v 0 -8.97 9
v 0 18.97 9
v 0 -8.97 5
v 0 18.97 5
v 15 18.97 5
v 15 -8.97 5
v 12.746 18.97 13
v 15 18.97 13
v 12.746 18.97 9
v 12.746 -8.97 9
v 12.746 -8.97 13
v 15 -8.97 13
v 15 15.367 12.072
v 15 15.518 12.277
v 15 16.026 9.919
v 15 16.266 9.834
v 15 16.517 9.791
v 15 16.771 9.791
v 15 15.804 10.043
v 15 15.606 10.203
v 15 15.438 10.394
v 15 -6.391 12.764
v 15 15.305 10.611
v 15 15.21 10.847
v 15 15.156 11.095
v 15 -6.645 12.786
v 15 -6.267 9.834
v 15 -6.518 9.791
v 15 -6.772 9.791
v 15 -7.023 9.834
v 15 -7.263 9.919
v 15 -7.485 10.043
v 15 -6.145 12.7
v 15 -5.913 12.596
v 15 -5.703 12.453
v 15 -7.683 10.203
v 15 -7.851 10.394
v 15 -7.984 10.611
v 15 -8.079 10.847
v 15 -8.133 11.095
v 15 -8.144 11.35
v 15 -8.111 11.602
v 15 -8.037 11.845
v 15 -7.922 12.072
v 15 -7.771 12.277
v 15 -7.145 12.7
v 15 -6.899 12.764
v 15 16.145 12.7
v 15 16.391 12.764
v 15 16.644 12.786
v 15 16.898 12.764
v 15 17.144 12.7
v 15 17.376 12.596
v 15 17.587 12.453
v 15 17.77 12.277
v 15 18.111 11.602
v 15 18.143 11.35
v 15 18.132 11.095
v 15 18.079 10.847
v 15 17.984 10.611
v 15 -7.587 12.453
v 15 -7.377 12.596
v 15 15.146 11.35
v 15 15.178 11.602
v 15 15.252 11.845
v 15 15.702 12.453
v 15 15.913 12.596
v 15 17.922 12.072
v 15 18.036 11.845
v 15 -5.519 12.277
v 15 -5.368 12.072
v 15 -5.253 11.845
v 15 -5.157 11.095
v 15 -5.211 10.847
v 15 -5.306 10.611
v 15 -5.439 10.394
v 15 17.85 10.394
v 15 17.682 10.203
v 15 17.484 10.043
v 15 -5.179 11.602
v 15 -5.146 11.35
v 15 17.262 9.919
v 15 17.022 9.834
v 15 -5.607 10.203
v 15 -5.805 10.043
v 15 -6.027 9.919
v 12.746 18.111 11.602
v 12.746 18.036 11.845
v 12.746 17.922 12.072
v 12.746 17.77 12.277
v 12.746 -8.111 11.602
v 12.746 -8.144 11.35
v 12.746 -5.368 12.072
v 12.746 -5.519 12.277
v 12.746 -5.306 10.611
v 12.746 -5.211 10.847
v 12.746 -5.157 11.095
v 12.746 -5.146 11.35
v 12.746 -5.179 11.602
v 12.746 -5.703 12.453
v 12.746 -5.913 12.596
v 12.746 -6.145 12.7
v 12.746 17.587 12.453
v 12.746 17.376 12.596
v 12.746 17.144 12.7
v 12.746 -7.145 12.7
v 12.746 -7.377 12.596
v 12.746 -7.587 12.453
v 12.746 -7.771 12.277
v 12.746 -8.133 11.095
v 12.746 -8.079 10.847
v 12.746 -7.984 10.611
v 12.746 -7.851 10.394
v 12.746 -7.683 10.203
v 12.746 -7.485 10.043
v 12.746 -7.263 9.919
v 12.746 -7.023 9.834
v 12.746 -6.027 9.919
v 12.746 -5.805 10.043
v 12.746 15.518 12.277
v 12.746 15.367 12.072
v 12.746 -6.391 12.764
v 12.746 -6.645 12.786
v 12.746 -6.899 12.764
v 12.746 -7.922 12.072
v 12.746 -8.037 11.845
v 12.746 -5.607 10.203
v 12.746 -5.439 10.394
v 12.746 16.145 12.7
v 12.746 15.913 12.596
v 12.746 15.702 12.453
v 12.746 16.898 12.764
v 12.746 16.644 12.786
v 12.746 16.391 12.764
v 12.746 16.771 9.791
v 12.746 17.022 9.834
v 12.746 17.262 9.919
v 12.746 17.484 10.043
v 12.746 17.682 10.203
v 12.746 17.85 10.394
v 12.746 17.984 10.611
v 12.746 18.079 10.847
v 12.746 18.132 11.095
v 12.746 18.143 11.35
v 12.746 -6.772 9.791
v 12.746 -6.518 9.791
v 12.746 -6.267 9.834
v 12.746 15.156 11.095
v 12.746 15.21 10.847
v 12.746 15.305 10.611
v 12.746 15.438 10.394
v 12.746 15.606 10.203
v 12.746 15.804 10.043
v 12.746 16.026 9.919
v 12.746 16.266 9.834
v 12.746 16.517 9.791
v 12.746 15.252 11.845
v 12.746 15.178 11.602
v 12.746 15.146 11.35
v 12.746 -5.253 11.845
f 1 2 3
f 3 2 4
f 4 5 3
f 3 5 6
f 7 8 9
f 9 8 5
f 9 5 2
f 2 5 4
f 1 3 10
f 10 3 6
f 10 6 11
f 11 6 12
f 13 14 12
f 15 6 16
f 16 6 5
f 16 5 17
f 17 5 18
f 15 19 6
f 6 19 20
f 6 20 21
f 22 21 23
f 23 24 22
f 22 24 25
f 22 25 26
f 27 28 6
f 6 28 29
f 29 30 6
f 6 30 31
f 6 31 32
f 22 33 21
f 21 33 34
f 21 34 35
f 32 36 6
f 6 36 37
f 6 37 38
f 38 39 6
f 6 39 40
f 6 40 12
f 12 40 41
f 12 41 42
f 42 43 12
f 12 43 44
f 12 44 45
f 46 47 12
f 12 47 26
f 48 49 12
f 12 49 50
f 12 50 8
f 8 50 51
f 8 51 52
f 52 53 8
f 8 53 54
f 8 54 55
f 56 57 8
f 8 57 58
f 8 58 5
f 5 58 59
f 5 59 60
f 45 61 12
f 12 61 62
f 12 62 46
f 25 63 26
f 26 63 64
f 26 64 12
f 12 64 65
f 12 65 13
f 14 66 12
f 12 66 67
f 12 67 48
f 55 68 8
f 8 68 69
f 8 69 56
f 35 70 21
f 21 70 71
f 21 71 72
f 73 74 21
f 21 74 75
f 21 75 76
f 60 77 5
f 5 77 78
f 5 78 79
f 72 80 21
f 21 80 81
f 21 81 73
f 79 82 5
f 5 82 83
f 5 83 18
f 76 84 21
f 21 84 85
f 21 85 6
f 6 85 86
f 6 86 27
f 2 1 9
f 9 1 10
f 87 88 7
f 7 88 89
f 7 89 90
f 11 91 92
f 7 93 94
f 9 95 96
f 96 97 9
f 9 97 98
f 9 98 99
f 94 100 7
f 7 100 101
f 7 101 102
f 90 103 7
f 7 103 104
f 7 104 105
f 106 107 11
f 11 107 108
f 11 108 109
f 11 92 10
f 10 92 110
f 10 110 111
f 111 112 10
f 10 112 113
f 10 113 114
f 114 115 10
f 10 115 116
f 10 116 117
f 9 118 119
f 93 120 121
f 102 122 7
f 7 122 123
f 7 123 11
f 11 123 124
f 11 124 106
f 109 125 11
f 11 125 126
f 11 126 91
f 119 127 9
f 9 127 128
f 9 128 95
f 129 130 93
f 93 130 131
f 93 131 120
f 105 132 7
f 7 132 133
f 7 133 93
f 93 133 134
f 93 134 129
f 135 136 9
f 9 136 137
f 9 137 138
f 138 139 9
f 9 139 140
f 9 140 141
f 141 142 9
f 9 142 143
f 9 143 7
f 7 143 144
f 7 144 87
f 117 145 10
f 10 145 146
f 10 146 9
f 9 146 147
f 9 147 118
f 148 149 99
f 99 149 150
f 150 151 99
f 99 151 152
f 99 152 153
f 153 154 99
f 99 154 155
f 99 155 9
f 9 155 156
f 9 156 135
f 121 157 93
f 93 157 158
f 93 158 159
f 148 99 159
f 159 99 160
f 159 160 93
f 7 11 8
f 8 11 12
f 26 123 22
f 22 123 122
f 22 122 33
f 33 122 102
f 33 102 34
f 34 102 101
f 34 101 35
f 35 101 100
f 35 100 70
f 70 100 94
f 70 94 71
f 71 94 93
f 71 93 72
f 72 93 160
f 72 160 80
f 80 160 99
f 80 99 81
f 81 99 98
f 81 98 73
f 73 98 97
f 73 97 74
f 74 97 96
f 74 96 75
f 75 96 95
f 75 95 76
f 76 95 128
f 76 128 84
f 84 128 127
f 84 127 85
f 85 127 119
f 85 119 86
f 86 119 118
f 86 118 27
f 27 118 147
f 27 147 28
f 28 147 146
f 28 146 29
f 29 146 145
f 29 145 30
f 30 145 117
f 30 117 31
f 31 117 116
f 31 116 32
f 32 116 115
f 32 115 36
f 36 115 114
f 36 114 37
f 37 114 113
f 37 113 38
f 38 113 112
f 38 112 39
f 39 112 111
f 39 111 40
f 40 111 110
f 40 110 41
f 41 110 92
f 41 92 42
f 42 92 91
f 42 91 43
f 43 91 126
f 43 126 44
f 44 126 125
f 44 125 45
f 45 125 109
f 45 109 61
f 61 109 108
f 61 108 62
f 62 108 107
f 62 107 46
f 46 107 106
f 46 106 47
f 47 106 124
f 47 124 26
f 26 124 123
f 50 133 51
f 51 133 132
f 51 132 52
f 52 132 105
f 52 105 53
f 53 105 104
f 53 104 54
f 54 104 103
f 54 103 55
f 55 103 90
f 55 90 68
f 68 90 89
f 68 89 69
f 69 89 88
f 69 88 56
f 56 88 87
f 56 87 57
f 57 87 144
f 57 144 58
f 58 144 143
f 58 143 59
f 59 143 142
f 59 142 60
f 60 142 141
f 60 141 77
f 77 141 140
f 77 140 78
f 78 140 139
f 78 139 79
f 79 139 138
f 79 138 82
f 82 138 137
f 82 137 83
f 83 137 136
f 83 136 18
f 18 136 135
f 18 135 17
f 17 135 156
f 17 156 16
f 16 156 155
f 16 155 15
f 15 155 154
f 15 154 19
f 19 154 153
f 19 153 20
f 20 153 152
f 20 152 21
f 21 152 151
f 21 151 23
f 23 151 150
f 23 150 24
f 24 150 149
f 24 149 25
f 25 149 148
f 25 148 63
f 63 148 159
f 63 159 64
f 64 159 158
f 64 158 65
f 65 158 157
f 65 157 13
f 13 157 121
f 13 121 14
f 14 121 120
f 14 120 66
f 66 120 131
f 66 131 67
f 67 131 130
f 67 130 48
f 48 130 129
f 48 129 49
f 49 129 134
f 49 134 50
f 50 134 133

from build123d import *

# Parameters (mm, degrees)
SKETCH2_W           = 10
SKETCH2_H           = 10
BOSS_EXTRUDE1_DEPTH = 5
SKETCH4_W           = 15
SKETCH4_H           = 27.94
BOSS_EXTRUDE4_DEPTH = 4
SKETCH5_W           = 2.25448465
SKETCH5_H           = 27.94
BOSS_EXTRUDE5_DEPTH = 4
SKETCH6_R           = 1.5
CUT_EXTRUDE1_DEPTH  = 40
SKETCH7_R           = 3.5
BOSS_EXTRUDE6_DEPTH = 8
SKETCH8_W           = 10
SKETCH8_H           = 10
CUT_EXTRUDE2_DEPTH  = 13


with BuildPart() as part:
    # Sketch2 → Boss-Extrude1 (new body)
    with BuildSketch(Plane.XY):
        with Locations((5, 5)):
            Rectangle(SKETCH2_W, SKETCH2_H)
    extrude(amount=BOSS_EXTRUDE1_DEPTH)

    # Sketch4 → Boss-Extrude4 (add)
    with BuildSketch(Plane.XY.offset(5)):
        with Locations((7.5, 5)):
            Rectangle(SKETCH4_W, SKETCH4_H)
    extrude(amount=BOSS_EXTRUDE4_DEPTH)

    # Sketch5 → Boss-Extrude5 (add)
    with BuildSketch(Plane.XY.offset(9)):
        with Locations((13.872757675, 5)):
            Rectangle(SKETCH5_W, SKETCH5_H)
    extrude(amount=BOSS_EXTRUDE5_DEPTH)

    # Sketch6 → Cut-Extrude1 (cut)
    with BuildSketch(Plane.ZY.offset(-12.74551535)):
        with Locations((11.286, 16.64426)):
            Circle(SKETCH6_R)
        with Locations((11.286, -6.645)):
            Circle(SKETCH6_R)
    extrude(amount=-CUT_EXTRUDE1_DEPTH, mode=Mode.SUBTRACT)

    # Sketch7 → Boss-Extrude6 (add)
    with BuildSketch(Plane(origin=(0, 0, 0), x_dir=(-1, 0, 0), z_dir=(0, 0, -1))):
        with Locations((-5, 5)):
            Circle(SKETCH7_R)
    extrude(amount=BOSS_EXTRUDE6_DEPTH)

    # Sketch8 → Cut-Extrude2 (cut)
    with BuildSketch(Plane(origin=(0, 0, -8), x_dir=(-1, 0, 0), z_dir=(0, 0, -1))):
        with Locations((-5, 5)):
            Rectangle(SKETCH8_W, SKETCH8_H)
    extrude(amount=-CUT_EXTRUDE2_DEPTH, mode=Mode.SUBTRACT)


solid = part.part
